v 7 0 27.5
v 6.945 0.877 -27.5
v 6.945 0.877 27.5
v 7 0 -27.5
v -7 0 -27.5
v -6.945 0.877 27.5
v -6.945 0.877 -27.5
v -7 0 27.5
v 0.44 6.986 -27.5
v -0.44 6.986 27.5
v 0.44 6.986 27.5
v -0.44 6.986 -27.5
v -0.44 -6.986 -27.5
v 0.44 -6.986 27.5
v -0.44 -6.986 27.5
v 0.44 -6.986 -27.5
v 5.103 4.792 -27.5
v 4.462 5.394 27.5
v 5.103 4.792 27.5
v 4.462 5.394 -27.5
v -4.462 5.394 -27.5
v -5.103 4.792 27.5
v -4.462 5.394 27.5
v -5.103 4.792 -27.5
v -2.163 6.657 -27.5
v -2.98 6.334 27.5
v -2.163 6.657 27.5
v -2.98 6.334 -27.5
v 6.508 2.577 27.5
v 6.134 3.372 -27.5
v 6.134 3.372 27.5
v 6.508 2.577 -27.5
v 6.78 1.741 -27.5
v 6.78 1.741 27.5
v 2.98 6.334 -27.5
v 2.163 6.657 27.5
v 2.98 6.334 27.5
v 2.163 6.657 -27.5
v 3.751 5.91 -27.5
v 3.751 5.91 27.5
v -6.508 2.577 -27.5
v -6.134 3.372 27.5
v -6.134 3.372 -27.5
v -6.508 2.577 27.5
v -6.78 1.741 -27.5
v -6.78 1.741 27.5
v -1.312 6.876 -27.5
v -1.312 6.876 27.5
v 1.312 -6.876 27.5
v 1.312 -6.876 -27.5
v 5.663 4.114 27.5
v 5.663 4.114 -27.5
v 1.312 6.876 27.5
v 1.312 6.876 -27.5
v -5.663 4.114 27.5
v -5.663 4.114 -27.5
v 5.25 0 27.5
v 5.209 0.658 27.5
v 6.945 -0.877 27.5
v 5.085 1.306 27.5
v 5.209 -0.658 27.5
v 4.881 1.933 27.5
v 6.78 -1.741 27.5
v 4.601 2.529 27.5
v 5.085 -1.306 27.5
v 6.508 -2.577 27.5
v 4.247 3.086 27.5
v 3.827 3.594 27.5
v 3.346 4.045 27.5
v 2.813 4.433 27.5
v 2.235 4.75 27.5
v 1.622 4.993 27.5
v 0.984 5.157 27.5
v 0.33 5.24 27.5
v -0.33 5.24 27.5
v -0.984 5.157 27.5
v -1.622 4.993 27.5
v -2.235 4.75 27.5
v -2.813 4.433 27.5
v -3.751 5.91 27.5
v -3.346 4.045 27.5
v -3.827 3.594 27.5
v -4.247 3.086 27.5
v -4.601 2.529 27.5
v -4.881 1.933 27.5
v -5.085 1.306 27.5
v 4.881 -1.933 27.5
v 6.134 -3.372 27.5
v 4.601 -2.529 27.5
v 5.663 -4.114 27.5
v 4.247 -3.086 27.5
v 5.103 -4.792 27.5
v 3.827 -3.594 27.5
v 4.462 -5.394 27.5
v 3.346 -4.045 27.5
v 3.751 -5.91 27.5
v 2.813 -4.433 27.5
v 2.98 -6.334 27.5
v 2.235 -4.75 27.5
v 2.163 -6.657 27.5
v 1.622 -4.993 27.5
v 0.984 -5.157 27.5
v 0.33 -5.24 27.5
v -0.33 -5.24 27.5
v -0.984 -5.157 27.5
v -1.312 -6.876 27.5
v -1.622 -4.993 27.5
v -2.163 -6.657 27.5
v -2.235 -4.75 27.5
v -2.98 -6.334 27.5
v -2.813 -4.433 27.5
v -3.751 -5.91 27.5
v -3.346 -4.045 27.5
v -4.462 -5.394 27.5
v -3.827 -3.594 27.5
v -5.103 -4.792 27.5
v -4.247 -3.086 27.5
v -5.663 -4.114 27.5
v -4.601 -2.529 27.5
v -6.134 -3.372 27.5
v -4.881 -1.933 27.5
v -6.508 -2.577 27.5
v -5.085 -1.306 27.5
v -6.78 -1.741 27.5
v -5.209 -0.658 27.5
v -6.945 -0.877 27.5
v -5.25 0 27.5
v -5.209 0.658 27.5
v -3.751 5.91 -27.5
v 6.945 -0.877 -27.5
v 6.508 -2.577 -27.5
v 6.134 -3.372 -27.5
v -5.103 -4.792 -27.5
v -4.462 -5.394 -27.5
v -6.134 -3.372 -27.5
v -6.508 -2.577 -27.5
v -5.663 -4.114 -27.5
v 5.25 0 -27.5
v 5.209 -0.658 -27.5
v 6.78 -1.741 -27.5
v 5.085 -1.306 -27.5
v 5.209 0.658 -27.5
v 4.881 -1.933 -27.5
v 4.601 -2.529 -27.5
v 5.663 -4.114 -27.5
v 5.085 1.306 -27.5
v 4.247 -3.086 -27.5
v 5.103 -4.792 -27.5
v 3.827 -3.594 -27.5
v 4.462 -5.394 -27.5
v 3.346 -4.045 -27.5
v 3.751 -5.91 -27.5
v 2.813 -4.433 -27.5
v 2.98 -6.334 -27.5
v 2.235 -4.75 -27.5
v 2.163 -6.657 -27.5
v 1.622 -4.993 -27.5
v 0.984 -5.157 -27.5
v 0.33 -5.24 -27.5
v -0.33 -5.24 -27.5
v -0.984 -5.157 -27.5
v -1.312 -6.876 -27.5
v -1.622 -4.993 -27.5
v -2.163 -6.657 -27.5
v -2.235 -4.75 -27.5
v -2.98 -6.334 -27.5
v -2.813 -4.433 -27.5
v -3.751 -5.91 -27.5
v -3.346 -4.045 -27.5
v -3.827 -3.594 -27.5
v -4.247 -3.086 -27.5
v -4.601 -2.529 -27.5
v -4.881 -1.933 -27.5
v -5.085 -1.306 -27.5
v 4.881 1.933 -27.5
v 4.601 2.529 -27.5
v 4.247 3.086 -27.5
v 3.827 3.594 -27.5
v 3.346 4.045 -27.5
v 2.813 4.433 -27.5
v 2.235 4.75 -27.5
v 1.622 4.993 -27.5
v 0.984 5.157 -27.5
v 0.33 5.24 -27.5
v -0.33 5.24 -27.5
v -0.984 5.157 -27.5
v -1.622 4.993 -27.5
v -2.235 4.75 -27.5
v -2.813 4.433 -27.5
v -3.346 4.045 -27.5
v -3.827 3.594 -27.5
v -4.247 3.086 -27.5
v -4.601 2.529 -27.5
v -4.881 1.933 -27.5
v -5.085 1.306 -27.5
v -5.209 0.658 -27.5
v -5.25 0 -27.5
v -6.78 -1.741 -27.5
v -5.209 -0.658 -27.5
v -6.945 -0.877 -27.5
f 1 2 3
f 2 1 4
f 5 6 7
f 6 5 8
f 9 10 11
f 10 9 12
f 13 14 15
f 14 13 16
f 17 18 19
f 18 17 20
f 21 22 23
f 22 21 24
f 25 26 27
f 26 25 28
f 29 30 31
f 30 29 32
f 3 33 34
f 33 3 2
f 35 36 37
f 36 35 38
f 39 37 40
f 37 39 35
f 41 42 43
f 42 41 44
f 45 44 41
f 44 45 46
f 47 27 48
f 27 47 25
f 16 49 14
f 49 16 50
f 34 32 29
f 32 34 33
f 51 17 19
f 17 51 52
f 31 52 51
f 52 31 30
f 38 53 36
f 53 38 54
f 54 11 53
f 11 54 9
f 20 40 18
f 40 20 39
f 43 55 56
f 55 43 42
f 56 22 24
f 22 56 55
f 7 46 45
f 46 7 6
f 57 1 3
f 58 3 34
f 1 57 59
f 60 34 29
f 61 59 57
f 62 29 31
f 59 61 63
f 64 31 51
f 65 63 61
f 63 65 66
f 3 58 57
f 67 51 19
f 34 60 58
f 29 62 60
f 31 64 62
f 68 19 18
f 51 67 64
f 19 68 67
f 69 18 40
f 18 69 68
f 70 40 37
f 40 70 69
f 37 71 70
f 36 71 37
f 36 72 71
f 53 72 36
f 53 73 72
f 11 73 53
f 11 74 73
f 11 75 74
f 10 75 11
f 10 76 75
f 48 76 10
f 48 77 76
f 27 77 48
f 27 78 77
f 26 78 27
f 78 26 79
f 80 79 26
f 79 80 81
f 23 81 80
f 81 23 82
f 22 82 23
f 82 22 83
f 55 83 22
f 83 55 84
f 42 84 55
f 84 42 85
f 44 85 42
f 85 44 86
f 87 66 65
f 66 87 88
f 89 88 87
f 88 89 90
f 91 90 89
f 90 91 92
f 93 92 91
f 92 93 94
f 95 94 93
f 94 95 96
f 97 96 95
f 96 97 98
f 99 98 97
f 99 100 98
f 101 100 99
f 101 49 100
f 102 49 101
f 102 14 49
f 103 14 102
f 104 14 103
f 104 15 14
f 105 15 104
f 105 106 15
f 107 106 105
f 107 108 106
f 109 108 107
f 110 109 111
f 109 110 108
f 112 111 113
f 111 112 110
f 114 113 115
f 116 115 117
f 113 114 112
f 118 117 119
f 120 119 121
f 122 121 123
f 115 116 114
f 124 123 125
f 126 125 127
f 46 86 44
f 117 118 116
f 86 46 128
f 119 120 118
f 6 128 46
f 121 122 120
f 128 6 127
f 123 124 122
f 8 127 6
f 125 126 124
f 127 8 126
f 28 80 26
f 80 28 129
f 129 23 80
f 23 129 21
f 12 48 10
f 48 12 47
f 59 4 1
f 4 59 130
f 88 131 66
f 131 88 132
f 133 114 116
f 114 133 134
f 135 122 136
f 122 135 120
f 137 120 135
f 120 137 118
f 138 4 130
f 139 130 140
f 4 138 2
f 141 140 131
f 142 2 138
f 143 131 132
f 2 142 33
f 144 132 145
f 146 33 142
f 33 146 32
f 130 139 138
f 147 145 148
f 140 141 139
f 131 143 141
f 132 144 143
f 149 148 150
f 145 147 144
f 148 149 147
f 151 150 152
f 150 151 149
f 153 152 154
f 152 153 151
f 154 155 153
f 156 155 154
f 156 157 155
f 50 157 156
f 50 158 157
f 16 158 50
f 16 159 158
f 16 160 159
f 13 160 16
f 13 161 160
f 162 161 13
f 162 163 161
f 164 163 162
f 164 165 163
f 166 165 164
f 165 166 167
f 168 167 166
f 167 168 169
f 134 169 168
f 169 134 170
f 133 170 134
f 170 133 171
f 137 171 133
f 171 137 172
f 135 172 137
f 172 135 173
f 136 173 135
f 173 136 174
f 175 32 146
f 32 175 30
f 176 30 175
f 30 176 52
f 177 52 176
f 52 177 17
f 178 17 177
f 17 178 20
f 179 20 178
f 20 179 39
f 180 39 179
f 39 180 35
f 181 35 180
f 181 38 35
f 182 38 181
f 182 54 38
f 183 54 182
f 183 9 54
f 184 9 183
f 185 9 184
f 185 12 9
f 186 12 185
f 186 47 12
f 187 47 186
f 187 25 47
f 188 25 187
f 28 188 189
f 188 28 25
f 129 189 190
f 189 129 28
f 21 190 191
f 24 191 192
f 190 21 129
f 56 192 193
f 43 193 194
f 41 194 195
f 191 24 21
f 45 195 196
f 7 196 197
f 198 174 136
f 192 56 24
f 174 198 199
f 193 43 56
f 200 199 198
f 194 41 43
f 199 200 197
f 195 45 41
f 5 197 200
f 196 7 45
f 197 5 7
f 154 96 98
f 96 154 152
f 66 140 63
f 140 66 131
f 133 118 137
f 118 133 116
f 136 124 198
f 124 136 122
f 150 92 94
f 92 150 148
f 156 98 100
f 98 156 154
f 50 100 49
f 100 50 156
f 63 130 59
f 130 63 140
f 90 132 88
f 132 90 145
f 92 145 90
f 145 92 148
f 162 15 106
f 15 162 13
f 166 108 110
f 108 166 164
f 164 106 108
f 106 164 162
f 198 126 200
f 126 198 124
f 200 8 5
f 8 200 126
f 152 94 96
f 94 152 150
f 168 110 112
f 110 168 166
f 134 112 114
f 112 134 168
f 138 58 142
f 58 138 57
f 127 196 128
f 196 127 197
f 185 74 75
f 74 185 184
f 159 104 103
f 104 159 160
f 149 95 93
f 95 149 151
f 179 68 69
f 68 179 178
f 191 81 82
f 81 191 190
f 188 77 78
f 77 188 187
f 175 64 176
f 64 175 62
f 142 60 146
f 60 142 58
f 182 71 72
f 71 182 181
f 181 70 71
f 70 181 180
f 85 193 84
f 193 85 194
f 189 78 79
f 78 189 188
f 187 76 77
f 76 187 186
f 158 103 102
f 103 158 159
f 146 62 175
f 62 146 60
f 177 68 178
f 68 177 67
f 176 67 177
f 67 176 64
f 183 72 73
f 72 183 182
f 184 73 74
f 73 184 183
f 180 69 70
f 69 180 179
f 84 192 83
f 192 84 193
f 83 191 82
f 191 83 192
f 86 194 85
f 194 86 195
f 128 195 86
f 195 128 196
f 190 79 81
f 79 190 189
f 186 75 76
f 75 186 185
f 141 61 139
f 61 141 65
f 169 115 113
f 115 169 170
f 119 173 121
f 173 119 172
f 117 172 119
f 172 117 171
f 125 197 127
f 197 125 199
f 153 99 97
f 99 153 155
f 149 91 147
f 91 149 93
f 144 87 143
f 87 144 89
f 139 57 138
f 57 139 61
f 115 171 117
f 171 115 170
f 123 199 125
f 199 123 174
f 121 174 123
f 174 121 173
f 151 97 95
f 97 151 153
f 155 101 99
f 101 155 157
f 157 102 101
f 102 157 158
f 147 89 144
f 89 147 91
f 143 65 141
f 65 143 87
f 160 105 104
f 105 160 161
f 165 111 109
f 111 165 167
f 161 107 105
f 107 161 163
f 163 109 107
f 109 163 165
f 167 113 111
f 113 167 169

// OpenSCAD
$fn = 50;


difference() {
	union() {
		translate(v = [0, 0, -27.5000000000]) {
			cylinder(h = 55, r = 7.0000000000);
		}
	}
	union() {
		translate(v = [0, 0, -100.0000000000]) {
			cylinder(h = 200, r = 5.2500000000);
		}
	}
}
